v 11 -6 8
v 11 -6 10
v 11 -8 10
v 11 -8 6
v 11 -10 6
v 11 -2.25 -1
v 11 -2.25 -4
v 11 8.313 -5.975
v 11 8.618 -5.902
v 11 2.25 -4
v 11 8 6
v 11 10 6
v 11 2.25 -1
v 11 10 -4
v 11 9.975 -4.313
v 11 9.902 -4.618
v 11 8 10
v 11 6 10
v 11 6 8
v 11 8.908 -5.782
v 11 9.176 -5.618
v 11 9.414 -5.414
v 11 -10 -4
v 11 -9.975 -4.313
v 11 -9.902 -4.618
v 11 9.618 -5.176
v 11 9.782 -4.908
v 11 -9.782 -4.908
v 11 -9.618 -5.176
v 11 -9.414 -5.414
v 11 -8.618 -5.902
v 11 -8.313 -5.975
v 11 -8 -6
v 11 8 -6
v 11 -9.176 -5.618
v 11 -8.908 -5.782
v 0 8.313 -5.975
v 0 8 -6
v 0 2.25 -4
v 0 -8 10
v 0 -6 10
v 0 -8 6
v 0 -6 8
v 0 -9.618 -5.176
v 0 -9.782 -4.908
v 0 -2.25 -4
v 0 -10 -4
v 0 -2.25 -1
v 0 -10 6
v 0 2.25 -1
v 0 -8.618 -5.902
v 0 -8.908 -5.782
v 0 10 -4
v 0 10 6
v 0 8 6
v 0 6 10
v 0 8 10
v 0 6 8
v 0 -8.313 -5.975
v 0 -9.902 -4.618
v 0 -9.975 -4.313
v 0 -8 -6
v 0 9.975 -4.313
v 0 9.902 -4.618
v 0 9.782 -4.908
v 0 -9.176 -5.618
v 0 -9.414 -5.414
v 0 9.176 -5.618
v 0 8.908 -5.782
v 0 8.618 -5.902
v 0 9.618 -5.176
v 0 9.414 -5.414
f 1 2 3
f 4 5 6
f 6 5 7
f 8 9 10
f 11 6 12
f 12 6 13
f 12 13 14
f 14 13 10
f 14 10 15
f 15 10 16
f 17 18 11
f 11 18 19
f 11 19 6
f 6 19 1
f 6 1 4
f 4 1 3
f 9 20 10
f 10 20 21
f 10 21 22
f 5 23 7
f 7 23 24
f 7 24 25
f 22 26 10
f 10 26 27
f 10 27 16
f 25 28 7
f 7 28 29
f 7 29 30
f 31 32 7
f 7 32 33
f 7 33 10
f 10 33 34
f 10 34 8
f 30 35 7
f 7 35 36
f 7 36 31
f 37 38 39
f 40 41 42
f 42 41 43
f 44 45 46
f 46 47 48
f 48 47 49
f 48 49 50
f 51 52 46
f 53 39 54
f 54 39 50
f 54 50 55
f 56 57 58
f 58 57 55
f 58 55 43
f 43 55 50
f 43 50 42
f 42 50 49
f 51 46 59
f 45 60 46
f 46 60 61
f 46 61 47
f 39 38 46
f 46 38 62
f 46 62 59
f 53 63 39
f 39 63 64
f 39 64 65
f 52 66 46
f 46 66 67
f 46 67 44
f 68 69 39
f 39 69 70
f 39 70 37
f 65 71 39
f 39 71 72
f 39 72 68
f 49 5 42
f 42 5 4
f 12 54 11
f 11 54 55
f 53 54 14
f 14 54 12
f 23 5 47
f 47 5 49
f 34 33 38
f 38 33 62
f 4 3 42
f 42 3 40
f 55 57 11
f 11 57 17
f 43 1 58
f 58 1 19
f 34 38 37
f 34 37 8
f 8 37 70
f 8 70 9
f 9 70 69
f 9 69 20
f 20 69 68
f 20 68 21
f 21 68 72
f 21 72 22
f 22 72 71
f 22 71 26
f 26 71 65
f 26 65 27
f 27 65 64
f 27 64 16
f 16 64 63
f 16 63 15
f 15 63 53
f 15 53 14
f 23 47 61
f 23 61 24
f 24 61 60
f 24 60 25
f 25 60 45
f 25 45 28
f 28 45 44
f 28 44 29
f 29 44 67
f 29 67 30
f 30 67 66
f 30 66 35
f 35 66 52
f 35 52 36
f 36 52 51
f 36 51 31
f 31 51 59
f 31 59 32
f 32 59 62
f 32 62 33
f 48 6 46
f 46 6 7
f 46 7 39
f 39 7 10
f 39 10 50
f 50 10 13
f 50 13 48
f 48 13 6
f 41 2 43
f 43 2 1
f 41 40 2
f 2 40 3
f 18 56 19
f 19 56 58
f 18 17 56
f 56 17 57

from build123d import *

# Parameters (mm, degrees)
SKETCH1_W           = 20
SKETCH1_H           = 12
BOSS_EXTRUDE1_DEPTH = 11
SKETCH5_W           = 16
SKETCH5_H           = 11
BOSS_EXTRUDE2_DEPTH = 8
FILLET1_R           = 2
SKETCH7_W           = 4.5
SKETCH7_H           = 3
CUT_EXTRUDE1_DEPTH  = 15
SKETCH9_W           = 11
SKETCH9_H           = 2
BOSS_EXTRUDE4_DEPTH = 2


with BuildPart() as part:
    # Sketch1 → Boss-Extrude1 (new body)
    with BuildSketch(Plane.YZ):
        Rectangle(SKETCH1_W, SKETCH1_H)
    extrude(amount=BOSS_EXTRUDE1_DEPTH)

    # Sketch5 → Boss-Extrude2 (add)
    with BuildSketch(Plane(origin=(0, 0, 0), x_dir=(0, 1, 0), z_dir=(0, 0, 1))):
        with Locations((0, -5.5)):
            Rectangle(SKETCH5_W, SKETCH5_H)
    extrude(amount=BOSS_EXTRUDE2_DEPTH)

    # Fillet1
    fillet1_edges = [part.edges().sort_by_distance(p)[0] for p in [
        (5.5, 10, -6),
        (5.5, -10, -6),
    ]]
    fillet(fillet1_edges, radius=FILLET1_R)

    # Sketch7 → Cut-Extrude1 (cut)
    with BuildSketch(Plane.YZ):
        with Locations((0, -2.5)):
            Rectangle(SKETCH7_W, SKETCH7_H)
    extrude(amount=CUT_EXTRUDE1_DEPTH, mode=Mode.SUBTRACT)

    # Sketch9 → Boss-Extrude4 (add)
    with BuildSketch(Plane.XY.offset(8)):
        with Locations((5.5, 7)):
            Rectangle(SKETCH9_W, SKETCH9_H)
        with Locations((5.5, -7)):
            Rectangle(SKETCH9_W, SKETCH9_H)
    extrude(amount=BOSS_EXTRUDE4_DEPTH)


solid = part.part
